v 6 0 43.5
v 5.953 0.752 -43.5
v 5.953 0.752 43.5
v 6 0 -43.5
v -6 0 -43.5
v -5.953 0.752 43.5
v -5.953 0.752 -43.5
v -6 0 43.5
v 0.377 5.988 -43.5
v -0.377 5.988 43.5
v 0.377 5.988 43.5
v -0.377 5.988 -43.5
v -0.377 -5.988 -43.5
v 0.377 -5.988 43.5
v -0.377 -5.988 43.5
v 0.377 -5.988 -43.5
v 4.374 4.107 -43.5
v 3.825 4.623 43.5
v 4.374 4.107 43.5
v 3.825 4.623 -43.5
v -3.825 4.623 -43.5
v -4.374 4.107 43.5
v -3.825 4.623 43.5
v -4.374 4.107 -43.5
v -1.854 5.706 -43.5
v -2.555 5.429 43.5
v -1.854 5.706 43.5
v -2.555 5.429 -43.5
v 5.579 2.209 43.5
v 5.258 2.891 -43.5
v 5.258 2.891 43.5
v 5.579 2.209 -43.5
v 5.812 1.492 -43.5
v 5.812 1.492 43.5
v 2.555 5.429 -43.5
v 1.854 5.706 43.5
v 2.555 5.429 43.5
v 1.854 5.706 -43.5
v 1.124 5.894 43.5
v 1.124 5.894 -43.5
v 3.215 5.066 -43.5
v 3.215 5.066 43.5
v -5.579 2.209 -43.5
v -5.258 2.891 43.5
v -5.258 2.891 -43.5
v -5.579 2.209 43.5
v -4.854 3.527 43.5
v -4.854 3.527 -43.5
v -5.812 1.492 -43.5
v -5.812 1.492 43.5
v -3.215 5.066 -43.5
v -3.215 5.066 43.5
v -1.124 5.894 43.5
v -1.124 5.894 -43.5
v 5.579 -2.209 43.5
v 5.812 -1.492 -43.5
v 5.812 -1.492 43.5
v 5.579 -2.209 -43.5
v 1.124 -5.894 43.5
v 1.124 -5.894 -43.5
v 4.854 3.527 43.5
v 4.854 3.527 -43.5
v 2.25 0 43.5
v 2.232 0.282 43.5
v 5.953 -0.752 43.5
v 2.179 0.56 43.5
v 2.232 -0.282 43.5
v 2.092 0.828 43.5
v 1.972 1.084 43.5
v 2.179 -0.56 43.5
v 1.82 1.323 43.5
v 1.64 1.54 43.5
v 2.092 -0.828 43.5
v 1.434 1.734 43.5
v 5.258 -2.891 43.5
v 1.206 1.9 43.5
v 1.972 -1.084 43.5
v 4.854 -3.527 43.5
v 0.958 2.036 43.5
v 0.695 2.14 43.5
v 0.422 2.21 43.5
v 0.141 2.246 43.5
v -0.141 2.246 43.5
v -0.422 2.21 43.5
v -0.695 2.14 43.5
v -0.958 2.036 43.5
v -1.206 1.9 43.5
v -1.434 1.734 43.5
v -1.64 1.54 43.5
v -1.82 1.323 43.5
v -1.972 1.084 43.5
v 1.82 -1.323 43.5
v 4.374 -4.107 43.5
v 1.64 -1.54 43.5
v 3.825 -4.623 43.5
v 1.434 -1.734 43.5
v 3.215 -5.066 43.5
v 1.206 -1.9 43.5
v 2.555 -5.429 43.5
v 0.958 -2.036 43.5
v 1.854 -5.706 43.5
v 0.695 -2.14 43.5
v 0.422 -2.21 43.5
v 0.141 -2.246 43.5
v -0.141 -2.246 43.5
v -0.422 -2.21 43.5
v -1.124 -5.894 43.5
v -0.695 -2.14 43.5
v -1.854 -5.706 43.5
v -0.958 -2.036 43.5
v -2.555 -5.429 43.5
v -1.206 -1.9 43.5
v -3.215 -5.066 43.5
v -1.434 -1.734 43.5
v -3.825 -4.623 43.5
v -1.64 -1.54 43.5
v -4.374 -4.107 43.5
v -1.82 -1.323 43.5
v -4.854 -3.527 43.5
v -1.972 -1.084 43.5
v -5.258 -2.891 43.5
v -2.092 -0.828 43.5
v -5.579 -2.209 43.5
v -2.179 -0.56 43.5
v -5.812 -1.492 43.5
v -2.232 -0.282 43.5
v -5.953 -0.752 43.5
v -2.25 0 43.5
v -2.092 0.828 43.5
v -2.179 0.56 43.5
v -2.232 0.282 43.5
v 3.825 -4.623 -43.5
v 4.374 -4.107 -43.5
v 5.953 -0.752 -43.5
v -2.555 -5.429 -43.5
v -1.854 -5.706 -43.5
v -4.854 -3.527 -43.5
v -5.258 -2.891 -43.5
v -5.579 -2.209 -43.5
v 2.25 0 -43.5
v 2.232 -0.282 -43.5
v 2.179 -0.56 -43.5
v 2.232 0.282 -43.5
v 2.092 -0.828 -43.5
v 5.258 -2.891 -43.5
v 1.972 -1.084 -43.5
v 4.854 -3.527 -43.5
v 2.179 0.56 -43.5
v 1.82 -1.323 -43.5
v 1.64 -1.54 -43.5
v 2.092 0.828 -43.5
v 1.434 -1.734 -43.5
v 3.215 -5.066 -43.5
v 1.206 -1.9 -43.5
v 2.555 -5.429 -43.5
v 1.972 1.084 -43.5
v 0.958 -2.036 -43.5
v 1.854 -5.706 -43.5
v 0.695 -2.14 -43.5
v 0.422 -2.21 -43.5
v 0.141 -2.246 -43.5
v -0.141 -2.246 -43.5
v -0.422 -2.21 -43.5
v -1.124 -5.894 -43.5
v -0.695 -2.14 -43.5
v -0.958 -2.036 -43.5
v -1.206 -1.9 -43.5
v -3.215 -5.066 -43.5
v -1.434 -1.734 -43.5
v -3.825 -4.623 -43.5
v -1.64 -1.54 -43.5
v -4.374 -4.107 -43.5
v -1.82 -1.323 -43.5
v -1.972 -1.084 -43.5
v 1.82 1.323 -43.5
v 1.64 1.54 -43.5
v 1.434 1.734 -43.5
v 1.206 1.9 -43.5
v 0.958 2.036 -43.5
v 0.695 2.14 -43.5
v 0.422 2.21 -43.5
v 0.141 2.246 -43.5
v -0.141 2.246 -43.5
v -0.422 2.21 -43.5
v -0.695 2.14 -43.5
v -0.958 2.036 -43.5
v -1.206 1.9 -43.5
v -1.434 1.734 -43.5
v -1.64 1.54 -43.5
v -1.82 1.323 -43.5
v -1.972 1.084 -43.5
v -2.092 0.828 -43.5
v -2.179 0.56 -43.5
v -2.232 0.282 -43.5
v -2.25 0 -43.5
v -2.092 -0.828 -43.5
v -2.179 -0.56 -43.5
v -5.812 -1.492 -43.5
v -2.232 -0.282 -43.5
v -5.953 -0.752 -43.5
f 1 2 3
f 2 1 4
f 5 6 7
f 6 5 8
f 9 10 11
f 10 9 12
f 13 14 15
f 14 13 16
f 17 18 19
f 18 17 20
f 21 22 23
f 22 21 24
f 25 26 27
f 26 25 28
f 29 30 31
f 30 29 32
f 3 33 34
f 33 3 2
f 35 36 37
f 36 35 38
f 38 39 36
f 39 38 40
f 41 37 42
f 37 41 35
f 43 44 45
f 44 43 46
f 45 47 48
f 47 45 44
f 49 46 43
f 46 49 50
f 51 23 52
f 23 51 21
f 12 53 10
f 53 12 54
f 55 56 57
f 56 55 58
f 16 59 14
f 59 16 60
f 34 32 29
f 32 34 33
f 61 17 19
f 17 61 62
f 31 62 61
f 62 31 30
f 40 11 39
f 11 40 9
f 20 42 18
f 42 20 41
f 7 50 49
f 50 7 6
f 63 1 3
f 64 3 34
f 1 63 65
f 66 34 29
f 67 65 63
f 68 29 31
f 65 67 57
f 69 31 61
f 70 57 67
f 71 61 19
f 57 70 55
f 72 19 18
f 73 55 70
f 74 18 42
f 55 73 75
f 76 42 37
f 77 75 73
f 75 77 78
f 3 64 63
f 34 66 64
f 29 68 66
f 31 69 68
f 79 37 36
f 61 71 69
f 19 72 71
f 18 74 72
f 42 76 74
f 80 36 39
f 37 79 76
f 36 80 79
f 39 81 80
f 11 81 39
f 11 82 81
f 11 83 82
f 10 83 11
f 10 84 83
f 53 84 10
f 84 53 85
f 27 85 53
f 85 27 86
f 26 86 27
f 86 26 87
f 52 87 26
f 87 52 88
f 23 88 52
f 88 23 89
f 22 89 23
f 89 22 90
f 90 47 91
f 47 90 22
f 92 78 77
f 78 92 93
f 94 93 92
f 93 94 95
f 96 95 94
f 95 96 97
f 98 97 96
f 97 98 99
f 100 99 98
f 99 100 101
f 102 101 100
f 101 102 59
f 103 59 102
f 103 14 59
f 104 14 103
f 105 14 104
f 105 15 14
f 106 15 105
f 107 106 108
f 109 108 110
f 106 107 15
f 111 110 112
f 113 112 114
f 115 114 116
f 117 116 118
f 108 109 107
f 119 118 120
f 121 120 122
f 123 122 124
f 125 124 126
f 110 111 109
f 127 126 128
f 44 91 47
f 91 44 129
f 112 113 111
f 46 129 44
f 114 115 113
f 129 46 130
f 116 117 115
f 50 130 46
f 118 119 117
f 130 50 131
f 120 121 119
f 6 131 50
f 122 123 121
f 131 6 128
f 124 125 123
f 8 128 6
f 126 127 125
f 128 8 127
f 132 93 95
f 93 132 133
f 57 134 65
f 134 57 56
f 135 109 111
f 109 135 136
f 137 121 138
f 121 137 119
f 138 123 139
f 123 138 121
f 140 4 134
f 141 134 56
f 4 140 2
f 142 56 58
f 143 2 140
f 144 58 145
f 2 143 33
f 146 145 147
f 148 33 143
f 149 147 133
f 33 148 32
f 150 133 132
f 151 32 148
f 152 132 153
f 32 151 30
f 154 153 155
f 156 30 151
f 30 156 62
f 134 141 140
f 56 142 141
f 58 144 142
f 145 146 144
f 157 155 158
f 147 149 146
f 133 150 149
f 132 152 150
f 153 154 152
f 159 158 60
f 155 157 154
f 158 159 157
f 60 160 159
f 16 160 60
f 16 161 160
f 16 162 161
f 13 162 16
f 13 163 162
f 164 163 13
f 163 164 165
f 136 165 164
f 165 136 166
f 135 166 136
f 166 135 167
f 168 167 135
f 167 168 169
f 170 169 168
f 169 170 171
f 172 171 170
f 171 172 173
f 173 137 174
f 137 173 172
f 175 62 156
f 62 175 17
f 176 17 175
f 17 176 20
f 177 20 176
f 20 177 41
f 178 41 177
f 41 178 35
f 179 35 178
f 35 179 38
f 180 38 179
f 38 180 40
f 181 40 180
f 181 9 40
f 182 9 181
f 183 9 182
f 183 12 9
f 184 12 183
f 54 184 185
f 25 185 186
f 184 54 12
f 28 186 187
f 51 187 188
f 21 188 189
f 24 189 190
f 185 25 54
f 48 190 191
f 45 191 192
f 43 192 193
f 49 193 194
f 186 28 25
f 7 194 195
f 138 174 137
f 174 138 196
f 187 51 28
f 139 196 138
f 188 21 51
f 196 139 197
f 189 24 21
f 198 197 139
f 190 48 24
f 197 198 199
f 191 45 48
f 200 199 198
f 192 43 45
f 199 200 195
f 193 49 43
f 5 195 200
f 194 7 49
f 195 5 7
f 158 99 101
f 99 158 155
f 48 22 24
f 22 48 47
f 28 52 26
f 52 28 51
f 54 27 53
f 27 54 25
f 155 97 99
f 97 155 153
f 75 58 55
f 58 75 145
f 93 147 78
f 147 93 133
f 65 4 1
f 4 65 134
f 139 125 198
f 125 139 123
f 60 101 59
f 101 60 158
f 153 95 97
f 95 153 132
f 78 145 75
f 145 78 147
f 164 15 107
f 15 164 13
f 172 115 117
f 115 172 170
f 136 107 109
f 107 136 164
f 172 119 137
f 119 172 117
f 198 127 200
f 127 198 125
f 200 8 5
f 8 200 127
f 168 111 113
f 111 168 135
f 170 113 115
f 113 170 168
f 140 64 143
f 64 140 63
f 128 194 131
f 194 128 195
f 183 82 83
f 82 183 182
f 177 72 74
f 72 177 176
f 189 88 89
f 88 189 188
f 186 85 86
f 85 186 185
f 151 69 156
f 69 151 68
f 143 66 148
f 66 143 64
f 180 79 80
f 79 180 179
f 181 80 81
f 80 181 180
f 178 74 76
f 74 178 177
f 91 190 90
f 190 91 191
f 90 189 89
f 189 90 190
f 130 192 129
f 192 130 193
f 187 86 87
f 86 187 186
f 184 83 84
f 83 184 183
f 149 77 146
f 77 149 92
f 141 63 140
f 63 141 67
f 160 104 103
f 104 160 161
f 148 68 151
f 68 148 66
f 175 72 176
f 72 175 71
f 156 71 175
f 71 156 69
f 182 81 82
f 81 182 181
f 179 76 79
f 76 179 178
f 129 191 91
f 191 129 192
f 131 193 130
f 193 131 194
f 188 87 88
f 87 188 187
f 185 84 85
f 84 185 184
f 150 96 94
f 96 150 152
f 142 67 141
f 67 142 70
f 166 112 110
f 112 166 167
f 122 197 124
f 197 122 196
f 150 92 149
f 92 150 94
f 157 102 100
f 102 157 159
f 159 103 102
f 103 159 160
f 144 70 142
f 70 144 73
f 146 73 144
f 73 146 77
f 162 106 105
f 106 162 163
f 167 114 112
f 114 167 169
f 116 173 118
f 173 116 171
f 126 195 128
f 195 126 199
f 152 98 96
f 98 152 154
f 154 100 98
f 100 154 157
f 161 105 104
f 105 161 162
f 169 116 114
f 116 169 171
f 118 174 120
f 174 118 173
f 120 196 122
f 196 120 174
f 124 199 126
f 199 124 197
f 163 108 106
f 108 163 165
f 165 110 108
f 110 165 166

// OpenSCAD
$fn = 50;


difference() {
	union() {
		translate(v = [0, 0, -43.5000000000]) {
			cylinder(h = 87, r = 6.0000000000);
		}
	}
	union() {
		translate(v = [0, 0, -100.0000000000]) {
			cylinder(h = 200, r = 2.2500000000);
		}
	}
}
